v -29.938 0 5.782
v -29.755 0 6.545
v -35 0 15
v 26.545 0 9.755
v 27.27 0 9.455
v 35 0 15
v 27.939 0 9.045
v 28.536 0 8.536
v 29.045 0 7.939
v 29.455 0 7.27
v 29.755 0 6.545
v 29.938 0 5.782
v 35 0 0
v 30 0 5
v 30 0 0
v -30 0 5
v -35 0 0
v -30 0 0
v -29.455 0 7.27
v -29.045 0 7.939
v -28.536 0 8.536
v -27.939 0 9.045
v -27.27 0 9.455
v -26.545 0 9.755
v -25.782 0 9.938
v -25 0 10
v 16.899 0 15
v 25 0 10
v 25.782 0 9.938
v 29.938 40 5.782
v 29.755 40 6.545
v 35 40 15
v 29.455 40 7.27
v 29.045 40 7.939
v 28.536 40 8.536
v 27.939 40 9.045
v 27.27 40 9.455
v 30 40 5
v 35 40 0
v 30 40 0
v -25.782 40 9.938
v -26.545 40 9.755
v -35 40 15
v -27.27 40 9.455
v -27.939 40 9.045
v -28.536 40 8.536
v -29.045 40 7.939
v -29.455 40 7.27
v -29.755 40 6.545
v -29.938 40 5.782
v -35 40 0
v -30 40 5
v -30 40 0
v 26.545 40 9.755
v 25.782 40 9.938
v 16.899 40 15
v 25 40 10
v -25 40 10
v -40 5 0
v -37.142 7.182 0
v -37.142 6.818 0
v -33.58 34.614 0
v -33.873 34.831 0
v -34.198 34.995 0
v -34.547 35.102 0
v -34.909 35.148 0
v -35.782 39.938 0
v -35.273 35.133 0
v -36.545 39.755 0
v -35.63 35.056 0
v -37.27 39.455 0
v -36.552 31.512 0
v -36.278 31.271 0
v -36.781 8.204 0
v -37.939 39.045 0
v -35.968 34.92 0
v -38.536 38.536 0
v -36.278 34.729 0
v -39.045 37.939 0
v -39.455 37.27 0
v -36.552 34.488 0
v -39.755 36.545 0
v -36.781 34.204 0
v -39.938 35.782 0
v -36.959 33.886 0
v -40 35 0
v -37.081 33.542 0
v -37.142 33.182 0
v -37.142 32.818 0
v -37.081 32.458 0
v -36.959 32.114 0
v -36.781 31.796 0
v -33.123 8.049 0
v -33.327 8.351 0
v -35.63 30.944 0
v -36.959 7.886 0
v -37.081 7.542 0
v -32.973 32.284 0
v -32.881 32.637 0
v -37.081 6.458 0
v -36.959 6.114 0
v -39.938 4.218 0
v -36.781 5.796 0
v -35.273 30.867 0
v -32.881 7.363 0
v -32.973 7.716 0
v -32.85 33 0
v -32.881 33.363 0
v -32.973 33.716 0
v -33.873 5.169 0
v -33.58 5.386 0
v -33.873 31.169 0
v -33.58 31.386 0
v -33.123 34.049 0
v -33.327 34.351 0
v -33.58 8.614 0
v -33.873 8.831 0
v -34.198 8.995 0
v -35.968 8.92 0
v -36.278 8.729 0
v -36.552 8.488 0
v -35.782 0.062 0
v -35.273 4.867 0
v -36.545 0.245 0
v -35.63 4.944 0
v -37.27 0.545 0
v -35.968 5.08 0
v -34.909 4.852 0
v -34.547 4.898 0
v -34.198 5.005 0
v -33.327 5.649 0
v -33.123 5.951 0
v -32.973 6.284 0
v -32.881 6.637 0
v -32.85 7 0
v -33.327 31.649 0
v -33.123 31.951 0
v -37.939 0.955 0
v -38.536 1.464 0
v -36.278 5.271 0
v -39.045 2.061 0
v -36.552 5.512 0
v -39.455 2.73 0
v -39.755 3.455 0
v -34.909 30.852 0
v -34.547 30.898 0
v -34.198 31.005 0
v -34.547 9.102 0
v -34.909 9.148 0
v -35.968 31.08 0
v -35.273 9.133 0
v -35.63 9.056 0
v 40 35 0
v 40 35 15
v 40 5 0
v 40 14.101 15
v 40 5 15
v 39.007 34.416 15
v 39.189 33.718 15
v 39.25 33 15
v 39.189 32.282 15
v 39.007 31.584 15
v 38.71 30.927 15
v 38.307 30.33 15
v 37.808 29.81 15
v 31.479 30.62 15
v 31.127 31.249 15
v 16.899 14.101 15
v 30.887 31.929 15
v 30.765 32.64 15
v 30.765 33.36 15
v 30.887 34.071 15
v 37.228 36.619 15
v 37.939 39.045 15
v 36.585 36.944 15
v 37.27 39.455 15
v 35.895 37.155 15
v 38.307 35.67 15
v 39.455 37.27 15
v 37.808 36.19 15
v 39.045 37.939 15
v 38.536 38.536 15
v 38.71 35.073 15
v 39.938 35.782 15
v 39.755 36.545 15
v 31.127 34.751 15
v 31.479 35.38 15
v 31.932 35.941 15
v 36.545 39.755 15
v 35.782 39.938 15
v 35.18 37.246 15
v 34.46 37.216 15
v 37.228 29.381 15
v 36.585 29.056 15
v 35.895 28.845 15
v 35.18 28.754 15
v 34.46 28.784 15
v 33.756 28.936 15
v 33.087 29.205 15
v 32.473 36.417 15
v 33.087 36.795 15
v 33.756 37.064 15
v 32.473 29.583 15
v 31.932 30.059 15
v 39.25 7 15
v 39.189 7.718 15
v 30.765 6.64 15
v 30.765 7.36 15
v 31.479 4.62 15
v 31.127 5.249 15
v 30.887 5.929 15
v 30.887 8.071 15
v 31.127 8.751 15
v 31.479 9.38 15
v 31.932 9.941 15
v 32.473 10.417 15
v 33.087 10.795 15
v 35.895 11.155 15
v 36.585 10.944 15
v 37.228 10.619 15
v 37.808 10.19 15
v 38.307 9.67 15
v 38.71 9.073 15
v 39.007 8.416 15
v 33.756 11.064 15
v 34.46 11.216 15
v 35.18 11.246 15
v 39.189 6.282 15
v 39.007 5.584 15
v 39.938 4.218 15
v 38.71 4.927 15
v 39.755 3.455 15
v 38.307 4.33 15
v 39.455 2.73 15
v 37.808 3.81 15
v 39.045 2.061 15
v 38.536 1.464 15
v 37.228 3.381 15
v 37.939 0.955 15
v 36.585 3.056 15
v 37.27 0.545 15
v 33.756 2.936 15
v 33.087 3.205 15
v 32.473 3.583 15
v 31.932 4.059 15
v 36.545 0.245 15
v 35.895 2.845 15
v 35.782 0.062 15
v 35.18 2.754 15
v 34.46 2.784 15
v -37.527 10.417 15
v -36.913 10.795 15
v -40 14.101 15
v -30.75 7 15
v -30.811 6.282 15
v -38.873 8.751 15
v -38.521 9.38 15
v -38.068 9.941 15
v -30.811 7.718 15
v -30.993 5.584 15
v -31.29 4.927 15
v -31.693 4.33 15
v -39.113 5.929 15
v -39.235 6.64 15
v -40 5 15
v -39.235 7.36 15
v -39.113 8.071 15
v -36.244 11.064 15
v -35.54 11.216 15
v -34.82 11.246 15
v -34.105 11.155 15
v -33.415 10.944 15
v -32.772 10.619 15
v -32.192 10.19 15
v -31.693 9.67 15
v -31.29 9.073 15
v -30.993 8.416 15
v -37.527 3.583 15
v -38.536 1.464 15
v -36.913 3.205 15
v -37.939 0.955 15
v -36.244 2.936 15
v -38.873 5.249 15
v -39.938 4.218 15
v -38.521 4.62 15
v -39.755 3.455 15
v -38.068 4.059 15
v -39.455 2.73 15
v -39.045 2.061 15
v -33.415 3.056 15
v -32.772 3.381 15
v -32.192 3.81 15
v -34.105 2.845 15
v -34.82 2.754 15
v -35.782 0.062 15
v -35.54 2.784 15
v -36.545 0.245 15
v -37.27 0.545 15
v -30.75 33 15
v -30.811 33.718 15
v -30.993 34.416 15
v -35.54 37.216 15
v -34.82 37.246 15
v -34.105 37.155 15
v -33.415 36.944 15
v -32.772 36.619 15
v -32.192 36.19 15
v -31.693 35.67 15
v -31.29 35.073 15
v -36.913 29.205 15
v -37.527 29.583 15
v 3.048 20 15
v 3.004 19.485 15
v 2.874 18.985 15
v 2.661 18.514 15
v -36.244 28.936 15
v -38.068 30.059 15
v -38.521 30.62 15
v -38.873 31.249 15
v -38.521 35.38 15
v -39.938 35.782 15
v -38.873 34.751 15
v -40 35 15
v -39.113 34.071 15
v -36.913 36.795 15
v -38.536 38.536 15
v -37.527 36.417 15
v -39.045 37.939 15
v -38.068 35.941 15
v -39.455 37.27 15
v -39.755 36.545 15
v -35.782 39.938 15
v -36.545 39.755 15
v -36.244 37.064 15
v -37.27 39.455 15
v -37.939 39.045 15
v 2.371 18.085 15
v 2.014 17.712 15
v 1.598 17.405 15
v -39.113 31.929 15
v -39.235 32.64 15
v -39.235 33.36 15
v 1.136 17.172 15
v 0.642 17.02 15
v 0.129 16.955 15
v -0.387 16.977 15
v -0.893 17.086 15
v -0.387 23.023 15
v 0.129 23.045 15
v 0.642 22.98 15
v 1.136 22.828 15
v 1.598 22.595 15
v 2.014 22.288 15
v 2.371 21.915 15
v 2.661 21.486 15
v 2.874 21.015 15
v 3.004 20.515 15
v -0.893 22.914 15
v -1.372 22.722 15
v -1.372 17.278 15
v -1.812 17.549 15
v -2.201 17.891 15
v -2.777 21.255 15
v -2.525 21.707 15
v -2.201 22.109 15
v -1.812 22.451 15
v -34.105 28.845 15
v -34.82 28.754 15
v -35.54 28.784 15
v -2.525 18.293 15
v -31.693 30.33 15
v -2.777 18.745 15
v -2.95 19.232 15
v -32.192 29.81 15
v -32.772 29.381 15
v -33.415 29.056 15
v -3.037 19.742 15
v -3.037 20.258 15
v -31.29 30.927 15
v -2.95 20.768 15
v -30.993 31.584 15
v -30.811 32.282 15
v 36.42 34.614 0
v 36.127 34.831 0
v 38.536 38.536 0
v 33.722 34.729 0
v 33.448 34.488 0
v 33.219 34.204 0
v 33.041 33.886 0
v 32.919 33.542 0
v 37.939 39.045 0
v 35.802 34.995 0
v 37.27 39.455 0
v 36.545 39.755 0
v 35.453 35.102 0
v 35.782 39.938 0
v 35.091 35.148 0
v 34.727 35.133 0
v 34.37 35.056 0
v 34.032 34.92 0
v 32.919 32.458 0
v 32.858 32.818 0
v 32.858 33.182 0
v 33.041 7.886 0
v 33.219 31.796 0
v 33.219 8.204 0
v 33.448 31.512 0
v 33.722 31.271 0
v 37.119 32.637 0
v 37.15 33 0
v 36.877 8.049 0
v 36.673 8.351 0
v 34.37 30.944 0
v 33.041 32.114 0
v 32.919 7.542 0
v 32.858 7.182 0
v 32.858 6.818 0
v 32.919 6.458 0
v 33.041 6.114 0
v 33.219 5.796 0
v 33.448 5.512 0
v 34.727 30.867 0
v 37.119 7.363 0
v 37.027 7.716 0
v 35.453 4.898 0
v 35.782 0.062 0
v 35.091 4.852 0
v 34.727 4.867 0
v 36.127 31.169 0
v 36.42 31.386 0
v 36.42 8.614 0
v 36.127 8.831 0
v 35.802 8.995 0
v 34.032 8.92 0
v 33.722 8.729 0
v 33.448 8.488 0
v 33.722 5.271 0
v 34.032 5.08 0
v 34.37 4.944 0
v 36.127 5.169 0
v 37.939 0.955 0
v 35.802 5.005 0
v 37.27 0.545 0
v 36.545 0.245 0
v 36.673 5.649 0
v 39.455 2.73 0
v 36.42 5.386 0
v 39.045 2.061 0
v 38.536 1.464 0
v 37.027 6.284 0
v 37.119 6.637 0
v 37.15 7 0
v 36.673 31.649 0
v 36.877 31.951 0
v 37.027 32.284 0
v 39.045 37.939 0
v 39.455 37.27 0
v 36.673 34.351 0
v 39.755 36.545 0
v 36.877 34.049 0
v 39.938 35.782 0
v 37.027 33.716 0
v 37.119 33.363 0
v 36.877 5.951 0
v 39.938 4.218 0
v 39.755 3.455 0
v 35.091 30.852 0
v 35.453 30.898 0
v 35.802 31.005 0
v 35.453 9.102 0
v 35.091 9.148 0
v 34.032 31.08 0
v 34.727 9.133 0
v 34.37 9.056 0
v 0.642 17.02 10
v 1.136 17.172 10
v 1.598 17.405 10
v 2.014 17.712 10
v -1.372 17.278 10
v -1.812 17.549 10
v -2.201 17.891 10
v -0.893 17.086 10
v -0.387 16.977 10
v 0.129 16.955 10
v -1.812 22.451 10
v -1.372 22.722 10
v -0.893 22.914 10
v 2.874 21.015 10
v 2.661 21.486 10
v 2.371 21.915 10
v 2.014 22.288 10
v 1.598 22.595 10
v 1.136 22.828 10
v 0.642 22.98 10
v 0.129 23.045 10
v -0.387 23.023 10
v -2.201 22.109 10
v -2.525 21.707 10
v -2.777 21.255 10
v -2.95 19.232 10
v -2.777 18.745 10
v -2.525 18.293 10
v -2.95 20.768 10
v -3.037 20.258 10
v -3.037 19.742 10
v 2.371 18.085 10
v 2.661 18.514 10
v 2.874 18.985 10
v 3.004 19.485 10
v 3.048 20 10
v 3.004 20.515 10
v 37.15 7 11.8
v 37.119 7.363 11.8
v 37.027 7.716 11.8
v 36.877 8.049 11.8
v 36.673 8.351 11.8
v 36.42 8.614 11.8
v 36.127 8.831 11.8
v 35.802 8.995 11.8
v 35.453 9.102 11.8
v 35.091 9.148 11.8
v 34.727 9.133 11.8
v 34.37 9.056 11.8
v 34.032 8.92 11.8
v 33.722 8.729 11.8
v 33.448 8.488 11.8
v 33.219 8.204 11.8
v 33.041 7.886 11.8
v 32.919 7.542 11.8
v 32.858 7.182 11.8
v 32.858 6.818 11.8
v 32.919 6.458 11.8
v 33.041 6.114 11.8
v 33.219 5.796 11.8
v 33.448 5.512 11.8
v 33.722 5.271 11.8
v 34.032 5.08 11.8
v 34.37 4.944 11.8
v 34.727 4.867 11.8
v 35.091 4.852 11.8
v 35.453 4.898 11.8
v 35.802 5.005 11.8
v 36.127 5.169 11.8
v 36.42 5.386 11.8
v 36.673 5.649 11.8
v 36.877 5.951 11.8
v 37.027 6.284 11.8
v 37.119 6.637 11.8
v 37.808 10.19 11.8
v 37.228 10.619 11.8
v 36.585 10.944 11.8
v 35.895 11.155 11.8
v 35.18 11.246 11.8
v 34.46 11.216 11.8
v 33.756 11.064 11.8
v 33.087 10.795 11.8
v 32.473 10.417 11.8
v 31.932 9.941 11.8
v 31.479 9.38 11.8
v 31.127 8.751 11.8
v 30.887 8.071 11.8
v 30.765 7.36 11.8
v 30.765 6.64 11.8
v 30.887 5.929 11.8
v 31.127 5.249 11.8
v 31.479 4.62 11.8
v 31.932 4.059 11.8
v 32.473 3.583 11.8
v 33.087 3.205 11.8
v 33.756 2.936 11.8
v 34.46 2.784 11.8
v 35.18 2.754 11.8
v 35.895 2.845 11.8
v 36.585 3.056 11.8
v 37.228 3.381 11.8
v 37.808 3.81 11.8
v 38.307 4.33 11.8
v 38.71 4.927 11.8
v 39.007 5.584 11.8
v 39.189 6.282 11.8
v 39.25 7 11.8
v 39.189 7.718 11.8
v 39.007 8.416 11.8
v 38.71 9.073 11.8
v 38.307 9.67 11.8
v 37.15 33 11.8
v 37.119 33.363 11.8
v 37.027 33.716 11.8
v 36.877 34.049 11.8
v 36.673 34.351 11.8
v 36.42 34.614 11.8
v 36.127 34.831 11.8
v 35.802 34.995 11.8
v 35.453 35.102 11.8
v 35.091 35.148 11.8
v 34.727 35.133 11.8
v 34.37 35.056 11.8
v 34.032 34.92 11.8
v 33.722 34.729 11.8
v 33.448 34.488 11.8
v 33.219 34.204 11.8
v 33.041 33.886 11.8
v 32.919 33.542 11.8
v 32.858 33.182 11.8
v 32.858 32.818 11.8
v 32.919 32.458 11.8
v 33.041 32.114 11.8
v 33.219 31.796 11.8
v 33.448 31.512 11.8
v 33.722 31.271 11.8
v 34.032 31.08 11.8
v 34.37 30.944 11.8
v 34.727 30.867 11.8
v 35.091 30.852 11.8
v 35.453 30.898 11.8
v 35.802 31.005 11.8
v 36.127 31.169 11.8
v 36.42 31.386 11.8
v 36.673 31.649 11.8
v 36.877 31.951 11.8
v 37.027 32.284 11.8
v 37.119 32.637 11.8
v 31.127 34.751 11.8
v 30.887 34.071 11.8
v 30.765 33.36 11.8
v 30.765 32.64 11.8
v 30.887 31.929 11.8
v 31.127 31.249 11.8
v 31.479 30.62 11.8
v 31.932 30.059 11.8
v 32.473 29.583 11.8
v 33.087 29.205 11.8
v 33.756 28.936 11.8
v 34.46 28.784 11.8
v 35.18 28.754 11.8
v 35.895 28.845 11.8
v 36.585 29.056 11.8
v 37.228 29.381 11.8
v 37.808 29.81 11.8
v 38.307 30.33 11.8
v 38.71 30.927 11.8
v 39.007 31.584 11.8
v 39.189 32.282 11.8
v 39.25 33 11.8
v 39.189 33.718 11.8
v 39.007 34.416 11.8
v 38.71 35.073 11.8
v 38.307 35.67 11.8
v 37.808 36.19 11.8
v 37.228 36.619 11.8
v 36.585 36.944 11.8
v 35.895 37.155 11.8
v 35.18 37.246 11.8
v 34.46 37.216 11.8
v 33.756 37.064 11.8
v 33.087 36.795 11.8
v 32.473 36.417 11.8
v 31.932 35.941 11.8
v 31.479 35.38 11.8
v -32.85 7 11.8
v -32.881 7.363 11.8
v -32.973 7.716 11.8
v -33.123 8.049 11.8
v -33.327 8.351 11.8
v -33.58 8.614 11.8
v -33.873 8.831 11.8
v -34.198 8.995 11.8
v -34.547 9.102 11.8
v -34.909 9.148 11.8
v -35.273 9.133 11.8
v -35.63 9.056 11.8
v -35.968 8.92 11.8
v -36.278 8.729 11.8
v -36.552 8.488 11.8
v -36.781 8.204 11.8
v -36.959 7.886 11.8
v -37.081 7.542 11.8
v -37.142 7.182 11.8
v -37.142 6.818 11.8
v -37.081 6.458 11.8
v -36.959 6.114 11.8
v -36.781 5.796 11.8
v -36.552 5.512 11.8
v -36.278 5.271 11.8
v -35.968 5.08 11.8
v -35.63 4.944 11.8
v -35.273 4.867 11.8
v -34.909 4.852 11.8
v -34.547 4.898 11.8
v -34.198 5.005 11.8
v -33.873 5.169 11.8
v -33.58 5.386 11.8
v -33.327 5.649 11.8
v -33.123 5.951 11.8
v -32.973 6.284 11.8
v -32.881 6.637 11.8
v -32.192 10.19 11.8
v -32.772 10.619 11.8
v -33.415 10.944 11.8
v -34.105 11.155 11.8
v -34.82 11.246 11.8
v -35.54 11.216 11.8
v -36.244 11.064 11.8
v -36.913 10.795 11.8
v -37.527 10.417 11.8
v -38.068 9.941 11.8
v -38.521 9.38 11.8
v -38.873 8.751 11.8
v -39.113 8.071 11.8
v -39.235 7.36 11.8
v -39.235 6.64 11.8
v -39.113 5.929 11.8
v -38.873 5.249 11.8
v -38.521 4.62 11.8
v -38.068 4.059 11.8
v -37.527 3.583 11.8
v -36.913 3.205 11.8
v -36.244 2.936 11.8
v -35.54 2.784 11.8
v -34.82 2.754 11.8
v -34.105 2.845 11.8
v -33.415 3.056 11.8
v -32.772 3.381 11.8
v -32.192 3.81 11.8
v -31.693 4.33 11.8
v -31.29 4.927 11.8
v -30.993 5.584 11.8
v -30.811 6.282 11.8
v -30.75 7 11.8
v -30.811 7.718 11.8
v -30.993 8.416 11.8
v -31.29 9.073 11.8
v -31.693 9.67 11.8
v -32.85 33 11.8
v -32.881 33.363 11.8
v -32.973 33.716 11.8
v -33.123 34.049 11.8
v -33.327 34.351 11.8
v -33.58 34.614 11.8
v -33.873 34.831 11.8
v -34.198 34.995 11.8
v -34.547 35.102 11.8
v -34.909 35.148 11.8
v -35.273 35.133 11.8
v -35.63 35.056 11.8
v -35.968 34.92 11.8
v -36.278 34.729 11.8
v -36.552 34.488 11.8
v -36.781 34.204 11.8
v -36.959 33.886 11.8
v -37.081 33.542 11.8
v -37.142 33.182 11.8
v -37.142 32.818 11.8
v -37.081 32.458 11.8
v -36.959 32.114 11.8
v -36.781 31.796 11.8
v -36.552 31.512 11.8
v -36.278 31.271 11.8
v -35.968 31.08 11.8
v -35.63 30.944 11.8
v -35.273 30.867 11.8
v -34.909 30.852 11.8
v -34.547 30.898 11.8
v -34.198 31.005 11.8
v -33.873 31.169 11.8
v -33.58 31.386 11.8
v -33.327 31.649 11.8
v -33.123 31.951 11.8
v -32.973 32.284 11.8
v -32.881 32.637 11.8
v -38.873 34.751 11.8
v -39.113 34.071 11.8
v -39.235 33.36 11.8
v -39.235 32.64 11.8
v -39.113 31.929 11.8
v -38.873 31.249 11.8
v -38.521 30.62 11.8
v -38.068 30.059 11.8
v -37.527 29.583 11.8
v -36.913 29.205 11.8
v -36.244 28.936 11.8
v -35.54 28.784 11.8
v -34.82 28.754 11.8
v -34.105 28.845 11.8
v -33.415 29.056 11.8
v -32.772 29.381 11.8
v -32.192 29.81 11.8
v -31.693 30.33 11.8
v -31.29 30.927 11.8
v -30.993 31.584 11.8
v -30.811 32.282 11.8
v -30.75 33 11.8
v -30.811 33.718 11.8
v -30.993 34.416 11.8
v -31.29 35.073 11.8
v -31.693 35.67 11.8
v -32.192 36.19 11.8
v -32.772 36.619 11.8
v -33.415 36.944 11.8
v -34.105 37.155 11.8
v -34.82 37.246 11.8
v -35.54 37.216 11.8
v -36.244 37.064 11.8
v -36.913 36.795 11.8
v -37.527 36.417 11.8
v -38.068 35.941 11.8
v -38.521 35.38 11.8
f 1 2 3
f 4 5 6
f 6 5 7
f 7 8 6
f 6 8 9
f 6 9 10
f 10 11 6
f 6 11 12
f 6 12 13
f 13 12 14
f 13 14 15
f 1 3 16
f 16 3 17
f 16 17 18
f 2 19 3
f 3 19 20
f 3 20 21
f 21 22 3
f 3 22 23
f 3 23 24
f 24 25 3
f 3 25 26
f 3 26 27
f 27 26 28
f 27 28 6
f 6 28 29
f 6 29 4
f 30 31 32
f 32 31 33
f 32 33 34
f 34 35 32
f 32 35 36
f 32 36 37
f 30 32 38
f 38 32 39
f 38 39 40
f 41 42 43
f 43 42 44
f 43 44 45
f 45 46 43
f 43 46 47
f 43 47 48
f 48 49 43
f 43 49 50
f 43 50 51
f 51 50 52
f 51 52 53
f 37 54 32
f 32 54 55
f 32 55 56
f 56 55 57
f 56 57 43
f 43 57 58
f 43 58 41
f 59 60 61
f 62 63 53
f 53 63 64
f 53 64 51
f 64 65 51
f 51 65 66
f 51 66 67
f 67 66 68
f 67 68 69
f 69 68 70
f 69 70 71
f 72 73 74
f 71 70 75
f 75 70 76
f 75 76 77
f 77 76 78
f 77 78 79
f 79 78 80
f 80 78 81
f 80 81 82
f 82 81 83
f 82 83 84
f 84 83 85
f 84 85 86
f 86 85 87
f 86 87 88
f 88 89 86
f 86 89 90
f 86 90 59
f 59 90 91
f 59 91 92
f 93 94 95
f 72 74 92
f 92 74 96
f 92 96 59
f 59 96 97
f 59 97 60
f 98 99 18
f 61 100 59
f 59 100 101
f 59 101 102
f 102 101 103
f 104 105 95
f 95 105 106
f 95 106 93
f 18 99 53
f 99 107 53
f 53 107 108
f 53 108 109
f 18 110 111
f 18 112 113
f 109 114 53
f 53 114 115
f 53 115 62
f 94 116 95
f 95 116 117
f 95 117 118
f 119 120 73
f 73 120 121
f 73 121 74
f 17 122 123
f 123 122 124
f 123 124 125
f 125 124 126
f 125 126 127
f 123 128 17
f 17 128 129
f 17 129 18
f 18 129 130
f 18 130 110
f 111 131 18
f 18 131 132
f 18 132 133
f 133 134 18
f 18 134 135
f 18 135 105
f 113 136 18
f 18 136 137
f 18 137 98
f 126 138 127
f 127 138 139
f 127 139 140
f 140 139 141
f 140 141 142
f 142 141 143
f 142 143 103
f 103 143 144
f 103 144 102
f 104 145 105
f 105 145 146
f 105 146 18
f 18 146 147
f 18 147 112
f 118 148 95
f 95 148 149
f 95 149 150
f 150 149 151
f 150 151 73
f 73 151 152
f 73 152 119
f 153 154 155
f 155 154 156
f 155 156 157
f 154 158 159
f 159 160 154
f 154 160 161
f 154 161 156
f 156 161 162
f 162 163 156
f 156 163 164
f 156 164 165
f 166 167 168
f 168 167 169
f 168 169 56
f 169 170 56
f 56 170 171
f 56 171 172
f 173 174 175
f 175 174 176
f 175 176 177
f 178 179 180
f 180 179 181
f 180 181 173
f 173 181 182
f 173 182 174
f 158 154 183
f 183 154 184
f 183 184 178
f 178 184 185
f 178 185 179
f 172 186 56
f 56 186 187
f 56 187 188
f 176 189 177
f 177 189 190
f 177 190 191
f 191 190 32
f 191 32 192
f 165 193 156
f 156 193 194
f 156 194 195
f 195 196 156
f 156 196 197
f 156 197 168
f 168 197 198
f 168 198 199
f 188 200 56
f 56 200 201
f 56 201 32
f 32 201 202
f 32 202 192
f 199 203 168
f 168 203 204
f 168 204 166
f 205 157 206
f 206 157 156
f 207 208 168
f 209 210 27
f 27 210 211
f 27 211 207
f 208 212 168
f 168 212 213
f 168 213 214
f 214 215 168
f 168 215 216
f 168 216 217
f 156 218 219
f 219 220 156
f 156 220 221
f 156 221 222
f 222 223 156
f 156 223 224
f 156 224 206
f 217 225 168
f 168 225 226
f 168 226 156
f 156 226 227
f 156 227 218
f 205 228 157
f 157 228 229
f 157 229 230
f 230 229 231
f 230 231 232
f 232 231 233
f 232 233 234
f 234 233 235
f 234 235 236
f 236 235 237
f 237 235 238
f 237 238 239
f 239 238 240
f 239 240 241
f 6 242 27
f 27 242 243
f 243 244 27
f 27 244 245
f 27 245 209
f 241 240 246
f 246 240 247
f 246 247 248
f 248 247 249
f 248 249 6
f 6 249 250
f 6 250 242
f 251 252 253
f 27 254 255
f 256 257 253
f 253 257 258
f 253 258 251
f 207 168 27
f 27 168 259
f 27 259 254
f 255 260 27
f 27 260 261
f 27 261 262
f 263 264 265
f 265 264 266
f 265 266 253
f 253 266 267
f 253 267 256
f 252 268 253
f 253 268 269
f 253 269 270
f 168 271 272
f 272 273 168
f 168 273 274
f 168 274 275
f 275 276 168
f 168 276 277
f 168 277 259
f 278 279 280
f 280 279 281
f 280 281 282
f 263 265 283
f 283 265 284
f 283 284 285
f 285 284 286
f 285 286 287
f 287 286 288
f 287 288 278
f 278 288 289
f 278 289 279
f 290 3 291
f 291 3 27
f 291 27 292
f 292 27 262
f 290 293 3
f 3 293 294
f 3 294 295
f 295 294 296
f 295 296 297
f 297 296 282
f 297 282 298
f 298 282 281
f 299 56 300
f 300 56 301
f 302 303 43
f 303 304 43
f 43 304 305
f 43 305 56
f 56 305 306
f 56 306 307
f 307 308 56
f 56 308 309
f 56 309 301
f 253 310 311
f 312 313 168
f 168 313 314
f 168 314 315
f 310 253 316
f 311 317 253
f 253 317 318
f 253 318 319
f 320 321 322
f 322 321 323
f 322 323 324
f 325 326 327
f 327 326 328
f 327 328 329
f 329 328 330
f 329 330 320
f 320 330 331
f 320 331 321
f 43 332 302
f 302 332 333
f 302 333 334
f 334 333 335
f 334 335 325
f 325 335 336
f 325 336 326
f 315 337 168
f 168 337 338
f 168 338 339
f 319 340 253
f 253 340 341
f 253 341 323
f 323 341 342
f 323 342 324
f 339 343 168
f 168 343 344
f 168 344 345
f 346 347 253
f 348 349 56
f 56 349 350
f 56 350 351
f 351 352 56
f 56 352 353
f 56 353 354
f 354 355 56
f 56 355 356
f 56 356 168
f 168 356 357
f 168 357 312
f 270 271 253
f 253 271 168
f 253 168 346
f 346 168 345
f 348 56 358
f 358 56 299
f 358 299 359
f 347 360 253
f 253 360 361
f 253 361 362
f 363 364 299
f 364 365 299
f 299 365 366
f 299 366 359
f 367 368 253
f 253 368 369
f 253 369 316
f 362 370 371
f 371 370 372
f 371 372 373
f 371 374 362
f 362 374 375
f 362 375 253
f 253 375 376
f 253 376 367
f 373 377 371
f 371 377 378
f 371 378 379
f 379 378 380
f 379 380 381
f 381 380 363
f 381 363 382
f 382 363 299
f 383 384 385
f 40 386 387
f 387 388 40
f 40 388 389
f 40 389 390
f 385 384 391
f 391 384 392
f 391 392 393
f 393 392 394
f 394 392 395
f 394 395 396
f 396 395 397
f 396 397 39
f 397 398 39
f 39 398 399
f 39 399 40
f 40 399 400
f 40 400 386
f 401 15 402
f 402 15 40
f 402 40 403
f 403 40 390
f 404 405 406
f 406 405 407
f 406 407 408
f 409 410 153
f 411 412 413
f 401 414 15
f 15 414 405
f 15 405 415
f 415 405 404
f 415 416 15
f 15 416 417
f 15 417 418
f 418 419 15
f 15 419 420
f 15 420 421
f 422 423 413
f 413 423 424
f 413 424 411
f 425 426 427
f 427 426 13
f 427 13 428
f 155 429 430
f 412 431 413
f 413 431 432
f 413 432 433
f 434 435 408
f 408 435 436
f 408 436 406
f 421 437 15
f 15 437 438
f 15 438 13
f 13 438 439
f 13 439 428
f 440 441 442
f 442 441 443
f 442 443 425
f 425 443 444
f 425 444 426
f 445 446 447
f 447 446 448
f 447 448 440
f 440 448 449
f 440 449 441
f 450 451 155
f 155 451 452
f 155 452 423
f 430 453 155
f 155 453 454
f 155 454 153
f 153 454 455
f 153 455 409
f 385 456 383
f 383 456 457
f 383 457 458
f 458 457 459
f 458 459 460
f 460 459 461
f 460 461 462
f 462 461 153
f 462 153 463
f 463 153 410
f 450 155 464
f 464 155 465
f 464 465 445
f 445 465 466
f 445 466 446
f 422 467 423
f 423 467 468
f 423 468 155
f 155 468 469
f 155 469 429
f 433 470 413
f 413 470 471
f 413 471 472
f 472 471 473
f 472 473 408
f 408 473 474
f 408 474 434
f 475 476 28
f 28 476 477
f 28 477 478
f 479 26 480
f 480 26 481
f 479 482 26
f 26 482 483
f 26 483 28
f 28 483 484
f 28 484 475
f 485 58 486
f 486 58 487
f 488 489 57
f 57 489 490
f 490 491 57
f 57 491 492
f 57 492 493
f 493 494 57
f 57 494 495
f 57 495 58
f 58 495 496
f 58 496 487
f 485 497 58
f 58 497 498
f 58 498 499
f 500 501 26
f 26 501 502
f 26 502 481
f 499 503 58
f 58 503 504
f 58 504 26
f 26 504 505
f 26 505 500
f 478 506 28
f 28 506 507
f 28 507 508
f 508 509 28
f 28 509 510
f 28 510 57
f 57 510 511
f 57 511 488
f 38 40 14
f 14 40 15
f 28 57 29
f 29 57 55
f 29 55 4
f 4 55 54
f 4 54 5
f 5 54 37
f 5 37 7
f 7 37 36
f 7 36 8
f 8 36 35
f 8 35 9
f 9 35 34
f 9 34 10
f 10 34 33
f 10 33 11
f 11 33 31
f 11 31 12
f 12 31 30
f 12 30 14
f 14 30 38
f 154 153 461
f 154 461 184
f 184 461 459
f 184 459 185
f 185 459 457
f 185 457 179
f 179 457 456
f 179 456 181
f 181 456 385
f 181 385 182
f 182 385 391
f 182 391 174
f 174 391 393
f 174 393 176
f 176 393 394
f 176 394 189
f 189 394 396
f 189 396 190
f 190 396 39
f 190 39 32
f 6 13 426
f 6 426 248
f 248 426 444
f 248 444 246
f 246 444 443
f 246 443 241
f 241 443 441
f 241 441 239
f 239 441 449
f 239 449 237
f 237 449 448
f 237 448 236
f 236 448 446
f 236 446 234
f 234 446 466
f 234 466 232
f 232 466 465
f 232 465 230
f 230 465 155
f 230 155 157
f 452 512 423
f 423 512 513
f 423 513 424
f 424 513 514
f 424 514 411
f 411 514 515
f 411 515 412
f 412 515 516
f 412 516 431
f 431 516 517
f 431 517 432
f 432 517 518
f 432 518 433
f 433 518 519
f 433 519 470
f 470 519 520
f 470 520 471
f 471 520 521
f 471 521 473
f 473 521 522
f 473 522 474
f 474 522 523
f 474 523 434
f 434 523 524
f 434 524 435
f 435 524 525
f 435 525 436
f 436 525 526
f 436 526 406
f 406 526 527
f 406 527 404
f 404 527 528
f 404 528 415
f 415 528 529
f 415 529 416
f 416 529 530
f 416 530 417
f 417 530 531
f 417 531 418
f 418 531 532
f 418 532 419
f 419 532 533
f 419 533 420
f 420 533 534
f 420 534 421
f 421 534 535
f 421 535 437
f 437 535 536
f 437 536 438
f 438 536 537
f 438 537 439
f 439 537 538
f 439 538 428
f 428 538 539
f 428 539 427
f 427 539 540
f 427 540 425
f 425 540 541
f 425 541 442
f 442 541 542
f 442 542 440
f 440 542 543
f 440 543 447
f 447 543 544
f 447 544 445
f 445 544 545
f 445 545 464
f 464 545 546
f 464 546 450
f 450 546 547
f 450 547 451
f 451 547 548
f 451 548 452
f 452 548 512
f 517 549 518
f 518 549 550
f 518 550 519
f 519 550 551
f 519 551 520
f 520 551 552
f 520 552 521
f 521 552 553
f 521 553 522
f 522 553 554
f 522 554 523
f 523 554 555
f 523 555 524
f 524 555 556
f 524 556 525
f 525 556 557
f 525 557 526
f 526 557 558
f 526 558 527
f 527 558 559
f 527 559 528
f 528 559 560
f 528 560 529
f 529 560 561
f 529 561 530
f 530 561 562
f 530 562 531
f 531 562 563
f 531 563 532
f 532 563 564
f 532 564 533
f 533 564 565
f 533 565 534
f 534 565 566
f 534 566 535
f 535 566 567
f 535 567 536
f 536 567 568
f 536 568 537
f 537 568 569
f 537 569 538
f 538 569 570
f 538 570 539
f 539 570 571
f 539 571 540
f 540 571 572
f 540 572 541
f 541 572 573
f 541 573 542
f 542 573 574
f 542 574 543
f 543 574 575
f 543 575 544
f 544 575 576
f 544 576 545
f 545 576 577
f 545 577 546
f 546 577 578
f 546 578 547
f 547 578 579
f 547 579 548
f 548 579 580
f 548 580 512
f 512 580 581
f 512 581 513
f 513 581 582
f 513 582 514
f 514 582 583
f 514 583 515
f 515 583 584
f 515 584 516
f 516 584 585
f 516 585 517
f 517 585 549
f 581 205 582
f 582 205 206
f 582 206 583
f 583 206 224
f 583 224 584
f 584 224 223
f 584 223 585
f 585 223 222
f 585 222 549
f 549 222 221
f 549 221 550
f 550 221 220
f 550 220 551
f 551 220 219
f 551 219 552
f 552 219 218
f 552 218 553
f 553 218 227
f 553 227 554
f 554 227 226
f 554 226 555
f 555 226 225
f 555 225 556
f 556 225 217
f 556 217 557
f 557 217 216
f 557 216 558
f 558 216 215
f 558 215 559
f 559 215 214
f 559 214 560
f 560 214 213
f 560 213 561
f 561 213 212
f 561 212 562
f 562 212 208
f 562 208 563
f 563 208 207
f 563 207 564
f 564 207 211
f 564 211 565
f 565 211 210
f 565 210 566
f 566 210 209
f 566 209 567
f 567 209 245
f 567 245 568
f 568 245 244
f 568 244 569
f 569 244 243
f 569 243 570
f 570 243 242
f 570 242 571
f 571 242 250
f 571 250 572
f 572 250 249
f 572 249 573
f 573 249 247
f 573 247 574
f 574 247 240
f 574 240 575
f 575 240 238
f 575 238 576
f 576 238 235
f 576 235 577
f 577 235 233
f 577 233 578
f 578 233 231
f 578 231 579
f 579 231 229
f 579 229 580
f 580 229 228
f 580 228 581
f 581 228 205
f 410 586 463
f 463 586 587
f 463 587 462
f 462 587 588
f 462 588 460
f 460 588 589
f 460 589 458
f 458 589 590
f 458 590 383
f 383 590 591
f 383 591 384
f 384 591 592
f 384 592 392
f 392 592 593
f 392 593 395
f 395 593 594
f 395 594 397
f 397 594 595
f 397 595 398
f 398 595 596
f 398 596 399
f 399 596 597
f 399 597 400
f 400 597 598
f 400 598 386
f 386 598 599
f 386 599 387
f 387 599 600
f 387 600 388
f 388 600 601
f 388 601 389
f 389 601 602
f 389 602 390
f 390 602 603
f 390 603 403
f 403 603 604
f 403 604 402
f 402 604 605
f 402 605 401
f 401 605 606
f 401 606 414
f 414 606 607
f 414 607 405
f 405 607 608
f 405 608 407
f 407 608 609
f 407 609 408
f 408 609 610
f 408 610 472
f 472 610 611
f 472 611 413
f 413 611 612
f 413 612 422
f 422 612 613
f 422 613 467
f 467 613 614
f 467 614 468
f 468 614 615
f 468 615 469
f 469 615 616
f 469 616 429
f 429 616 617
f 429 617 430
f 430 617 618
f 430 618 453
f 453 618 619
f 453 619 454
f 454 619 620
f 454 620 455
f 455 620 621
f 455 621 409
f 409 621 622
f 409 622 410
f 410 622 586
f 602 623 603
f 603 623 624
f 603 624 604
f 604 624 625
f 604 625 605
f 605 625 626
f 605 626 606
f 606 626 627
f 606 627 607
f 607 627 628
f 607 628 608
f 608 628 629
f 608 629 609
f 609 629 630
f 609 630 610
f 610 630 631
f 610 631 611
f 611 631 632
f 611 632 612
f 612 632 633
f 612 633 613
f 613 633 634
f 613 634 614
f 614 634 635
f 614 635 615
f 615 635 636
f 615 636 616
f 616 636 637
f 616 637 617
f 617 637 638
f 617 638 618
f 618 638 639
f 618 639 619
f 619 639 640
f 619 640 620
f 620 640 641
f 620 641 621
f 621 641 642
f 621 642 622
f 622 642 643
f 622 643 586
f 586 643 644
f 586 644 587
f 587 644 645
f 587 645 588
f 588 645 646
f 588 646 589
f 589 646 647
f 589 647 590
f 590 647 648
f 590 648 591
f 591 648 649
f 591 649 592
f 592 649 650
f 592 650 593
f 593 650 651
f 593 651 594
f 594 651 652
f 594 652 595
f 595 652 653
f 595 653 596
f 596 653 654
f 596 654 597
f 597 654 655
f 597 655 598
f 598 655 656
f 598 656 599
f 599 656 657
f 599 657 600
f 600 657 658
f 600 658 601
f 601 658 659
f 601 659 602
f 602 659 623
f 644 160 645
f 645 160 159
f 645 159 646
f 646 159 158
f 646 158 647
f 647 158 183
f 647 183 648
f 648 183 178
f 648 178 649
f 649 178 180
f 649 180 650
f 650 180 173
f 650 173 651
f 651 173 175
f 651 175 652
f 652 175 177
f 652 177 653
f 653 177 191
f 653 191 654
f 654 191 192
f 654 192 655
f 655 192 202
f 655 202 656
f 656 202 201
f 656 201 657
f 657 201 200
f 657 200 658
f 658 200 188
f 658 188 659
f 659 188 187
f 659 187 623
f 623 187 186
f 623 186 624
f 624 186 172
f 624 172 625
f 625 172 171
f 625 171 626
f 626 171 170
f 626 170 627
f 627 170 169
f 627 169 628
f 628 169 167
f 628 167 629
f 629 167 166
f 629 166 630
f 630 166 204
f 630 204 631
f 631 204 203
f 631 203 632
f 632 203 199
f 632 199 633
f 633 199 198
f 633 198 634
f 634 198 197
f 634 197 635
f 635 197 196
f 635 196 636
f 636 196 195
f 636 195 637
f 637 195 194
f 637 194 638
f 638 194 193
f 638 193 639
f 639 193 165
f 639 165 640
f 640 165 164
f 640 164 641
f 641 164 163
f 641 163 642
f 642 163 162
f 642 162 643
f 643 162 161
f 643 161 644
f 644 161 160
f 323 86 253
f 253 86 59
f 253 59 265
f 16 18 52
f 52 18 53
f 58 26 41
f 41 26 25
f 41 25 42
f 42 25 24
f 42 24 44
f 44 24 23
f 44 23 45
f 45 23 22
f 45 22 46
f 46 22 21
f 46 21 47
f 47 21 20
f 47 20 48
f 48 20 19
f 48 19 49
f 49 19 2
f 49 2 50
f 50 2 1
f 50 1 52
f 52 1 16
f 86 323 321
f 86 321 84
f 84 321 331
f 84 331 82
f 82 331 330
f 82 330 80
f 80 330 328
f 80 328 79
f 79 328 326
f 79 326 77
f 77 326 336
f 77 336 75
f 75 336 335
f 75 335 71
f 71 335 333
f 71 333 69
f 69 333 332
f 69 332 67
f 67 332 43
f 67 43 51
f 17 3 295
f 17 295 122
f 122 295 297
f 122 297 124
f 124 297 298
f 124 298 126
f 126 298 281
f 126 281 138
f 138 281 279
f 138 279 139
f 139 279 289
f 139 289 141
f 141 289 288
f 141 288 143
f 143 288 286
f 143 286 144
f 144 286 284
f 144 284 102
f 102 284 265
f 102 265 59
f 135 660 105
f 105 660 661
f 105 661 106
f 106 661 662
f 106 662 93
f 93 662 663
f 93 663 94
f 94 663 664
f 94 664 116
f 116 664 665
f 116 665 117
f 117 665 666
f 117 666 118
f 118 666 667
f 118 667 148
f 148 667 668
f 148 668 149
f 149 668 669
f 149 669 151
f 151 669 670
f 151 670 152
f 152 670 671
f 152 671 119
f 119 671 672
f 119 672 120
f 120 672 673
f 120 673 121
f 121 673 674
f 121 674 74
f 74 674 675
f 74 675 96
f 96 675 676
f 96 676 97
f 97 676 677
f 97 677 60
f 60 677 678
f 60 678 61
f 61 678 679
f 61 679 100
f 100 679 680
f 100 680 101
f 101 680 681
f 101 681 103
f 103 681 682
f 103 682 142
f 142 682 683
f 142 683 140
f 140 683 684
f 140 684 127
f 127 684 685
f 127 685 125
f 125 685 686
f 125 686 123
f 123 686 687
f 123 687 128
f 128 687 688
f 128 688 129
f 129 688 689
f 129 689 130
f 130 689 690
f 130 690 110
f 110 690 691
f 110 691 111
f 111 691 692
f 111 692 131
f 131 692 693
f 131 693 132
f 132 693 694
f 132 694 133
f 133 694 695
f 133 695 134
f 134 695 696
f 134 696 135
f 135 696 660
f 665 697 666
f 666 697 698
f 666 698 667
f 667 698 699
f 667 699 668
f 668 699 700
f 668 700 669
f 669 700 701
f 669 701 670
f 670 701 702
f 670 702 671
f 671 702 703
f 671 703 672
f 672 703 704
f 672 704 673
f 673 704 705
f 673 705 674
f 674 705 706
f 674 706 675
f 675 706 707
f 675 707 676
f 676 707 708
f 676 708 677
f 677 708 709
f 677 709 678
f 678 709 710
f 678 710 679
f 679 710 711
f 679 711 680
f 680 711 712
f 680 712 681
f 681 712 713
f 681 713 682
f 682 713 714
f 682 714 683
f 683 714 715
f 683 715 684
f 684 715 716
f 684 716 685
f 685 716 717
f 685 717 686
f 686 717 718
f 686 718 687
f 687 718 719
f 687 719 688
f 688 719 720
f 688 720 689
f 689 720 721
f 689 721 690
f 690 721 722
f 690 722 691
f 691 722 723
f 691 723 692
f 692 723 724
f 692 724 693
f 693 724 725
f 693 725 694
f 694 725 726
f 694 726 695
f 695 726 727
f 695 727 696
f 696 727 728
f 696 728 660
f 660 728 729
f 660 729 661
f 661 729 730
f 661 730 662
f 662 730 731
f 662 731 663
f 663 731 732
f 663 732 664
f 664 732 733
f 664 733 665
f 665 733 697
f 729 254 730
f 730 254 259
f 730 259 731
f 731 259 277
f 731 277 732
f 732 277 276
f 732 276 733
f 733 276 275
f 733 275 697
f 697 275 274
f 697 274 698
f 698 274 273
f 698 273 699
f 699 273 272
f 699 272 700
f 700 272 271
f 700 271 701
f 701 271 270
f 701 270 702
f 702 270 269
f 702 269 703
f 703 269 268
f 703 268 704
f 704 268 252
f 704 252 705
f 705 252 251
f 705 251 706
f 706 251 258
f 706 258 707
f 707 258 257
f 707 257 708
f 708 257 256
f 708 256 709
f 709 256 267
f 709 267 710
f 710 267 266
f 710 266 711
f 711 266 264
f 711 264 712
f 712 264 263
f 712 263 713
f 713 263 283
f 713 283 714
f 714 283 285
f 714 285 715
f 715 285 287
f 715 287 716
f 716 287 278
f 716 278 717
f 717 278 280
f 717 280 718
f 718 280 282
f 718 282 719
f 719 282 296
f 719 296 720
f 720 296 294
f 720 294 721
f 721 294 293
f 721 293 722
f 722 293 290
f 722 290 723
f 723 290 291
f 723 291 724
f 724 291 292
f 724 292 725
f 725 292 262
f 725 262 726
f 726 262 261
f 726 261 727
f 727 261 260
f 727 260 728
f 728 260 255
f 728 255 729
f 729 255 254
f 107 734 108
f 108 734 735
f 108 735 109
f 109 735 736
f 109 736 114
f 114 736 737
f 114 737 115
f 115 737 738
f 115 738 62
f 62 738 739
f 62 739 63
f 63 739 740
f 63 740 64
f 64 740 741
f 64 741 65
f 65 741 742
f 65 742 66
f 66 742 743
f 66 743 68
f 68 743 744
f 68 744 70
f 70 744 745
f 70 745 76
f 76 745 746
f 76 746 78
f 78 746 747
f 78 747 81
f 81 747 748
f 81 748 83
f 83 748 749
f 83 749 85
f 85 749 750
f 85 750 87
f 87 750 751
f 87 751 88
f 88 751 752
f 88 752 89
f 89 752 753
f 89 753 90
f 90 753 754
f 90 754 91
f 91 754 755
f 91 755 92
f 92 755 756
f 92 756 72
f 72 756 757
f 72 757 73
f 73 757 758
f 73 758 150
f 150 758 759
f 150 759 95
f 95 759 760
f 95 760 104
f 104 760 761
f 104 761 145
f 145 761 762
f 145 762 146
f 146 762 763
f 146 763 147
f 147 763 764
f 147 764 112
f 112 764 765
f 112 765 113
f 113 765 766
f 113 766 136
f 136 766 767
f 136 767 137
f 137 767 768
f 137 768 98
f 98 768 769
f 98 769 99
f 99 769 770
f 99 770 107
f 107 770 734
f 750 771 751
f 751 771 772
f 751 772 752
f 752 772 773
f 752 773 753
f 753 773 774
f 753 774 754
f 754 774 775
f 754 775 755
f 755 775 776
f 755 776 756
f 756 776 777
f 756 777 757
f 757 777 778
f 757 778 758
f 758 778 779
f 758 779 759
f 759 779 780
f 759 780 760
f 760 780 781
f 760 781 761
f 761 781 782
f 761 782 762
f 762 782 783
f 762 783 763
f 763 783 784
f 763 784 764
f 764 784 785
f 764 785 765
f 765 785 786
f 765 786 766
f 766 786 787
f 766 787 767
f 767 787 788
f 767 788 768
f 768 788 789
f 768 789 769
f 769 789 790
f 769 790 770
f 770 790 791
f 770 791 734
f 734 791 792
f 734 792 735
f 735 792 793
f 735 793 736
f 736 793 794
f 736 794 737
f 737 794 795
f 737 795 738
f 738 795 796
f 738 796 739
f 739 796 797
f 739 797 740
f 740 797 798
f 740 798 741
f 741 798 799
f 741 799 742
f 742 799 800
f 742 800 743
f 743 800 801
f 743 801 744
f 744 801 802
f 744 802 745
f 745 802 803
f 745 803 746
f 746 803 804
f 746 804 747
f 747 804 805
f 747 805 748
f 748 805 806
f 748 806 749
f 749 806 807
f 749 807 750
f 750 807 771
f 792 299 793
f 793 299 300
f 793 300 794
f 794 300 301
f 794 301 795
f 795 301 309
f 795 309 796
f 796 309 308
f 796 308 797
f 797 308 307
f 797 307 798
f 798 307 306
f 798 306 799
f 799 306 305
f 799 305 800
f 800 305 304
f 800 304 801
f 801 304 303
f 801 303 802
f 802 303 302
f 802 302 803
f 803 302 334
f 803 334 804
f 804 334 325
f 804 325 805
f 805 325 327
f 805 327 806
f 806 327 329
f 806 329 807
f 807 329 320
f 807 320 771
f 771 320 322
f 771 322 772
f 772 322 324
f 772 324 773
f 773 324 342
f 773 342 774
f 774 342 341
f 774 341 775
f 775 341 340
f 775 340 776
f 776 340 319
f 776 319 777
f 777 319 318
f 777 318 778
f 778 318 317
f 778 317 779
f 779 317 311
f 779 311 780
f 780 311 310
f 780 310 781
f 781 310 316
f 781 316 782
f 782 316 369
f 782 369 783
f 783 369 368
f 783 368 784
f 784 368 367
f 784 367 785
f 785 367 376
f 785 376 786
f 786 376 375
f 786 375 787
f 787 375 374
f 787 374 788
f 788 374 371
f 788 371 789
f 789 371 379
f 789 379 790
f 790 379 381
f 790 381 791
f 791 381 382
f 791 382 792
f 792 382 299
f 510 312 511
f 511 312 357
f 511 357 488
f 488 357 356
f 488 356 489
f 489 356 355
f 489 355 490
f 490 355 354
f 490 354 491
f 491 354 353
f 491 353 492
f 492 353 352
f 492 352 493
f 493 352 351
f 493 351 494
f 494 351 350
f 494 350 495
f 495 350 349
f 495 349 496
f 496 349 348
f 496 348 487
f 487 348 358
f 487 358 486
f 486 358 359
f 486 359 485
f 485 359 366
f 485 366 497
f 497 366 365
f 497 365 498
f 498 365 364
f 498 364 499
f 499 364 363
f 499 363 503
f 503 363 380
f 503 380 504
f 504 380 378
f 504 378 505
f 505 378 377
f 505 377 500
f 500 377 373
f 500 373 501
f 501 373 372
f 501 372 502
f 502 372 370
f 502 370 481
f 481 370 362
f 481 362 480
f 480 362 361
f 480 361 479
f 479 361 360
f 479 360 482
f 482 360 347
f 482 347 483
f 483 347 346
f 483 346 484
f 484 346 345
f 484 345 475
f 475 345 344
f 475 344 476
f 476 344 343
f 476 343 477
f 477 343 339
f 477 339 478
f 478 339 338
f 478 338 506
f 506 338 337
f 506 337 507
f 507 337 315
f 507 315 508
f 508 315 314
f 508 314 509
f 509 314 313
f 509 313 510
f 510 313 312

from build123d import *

# Parameters (mm, degrees)
SKETCH1_W                                        = 40
SKETCH1_H                                        = 40
BOSS_EXTRUDE1_DEPTH                              = 15
SKETCH2_W                                        = 30
SKETCH2_H                                        = 10
CUT_EXTRUDE1_DEPTH                               = 59.523499554
FILLET1_R                                        = 5
FILLET2_R                                        = 5
CBORE_FOR_M4_PAN_HEAD_MACHINE_SCREW1_D           = 4.3
CBORE_FOR_M4_PAN_HEAD_MACHINE_SCREW1_CBORE_D     = 8.5
CBORE_FOR_M4_PAN_HEAD_MACHINE_SCREW1_CBORE_DEPTH = 3.2
FILLET1_OF_MIRROR1_R                             = 5
FILLET2_OF_MIRROR1_R                             = 5
SKETCH4_R                                        = 3.048
CUT_EXTRUDE2_DEPTH                               = 59.523499554


with BuildPart() as part:
    # Sketch1 → Boss-Extrude1 (new body)
    with BuildSketch(Plane.XY):
        with Locations((20, 20)):
            Rectangle(SKETCH1_W, SKETCH1_H)
    boss_extrude1 = extrude(amount=BOSS_EXTRUDE1_DEPTH)

    # Sketch2 → Cut-Extrude1 (cut, through all)
    with BuildSketch(Plane.XZ):
        with Locations((15, 5)):
            Rectangle(SKETCH2_W, SKETCH2_H)
    cut_extrude1 = extrude(amount=-CUT_EXTRUDE1_DEPTH, mode=Mode.SUBTRACT)

    # Fillet1
    fillet1_edges = [part.edges().sort_by_distance(p)[0] for p in [
        (30, 20, 10),
    ]]
    fillet(fillet1_edges, radius=FILLET1_R)

    # Fillet2
    fillet2_edges = [part.edges().sort_by_distance(p)[0] for p in [
        (40, 40, 7.5),
        (40, 0, 7.5),
    ]]
    fillet(fillet2_edges, radius=FILLET2_R)

    # CBORE for M4 Pan Head Machine Screw1 (through all)
    with Locations(Plane(origin=(35, 33, 15), x_dir=(1, 0, 0), z_dir=(0, 0, 1))):
        with Locations((0, 0), (0, -26)):
            cbore_for_m4_pan_head_machine_screw1 = CounterBoreHole(CBORE_FOR_M4_PAN_HEAD_MACHINE_SCREW1_D / 2, CBORE_FOR_M4_PAN_HEAD_MACHINE_SCREW1_CBORE_D / 2, CBORE_FOR_M4_PAN_HEAD_MACHINE_SCREW1_CBORE_DEPTH)

    # Mirror1: Boss-Extrude1, Cut-Extrude1, CBORE for M4 Pan Head Machine Screw1 across plane
    add(boss_extrude1.mirror(Plane(origin=(0, 0, 15), x_dir=(0, 0, 1), z_dir=(1, 0, 0))))
    add(cut_extrude1.mirror(Plane(origin=(0, 0, 15), x_dir=(0, 0, 1), z_dir=(1, 0, 0))), mode=Mode.SUBTRACT)
    add(cbore_for_m4_pan_head_machine_screw1.mirror(Plane(origin=(0, 0, 15), x_dir=(0, 0, 1), z_dir=(1, 0, 0))), mode=Mode.SUBTRACT)

    # Fillet1 of Mirror1
    fillet1_of_mirror1_edges = [part.edges().sort_by_distance(p)[0] for p in [
        (-30, 20, 10),
    ]]
    fillet(fillet1_of_mirror1_edges, radius=FILLET1_OF_MIRROR1_R)

    # Fillet2 of Mirror1
    fillet2_of_mirror1_edges = [part.edges().sort_by_distance(p)[0] for p in [
        (-40, 40, 7.5),
        (-40, 0, 7.5),
    ]]
    fillet(fillet2_of_mirror1_edges, radius=FILLET2_OF_MIRROR1_R)

    # Sketch4 → Cut-Extrude2 (cut, through all)
    with BuildSketch(Plane.XY.offset(15)):
        with Locations((0, 20)):
            Circle(SKETCH4_R)
    extrude(amount=-CUT_EXTRUDE2_DEPTH, mode=Mode.SUBTRACT)


solid = part.part
